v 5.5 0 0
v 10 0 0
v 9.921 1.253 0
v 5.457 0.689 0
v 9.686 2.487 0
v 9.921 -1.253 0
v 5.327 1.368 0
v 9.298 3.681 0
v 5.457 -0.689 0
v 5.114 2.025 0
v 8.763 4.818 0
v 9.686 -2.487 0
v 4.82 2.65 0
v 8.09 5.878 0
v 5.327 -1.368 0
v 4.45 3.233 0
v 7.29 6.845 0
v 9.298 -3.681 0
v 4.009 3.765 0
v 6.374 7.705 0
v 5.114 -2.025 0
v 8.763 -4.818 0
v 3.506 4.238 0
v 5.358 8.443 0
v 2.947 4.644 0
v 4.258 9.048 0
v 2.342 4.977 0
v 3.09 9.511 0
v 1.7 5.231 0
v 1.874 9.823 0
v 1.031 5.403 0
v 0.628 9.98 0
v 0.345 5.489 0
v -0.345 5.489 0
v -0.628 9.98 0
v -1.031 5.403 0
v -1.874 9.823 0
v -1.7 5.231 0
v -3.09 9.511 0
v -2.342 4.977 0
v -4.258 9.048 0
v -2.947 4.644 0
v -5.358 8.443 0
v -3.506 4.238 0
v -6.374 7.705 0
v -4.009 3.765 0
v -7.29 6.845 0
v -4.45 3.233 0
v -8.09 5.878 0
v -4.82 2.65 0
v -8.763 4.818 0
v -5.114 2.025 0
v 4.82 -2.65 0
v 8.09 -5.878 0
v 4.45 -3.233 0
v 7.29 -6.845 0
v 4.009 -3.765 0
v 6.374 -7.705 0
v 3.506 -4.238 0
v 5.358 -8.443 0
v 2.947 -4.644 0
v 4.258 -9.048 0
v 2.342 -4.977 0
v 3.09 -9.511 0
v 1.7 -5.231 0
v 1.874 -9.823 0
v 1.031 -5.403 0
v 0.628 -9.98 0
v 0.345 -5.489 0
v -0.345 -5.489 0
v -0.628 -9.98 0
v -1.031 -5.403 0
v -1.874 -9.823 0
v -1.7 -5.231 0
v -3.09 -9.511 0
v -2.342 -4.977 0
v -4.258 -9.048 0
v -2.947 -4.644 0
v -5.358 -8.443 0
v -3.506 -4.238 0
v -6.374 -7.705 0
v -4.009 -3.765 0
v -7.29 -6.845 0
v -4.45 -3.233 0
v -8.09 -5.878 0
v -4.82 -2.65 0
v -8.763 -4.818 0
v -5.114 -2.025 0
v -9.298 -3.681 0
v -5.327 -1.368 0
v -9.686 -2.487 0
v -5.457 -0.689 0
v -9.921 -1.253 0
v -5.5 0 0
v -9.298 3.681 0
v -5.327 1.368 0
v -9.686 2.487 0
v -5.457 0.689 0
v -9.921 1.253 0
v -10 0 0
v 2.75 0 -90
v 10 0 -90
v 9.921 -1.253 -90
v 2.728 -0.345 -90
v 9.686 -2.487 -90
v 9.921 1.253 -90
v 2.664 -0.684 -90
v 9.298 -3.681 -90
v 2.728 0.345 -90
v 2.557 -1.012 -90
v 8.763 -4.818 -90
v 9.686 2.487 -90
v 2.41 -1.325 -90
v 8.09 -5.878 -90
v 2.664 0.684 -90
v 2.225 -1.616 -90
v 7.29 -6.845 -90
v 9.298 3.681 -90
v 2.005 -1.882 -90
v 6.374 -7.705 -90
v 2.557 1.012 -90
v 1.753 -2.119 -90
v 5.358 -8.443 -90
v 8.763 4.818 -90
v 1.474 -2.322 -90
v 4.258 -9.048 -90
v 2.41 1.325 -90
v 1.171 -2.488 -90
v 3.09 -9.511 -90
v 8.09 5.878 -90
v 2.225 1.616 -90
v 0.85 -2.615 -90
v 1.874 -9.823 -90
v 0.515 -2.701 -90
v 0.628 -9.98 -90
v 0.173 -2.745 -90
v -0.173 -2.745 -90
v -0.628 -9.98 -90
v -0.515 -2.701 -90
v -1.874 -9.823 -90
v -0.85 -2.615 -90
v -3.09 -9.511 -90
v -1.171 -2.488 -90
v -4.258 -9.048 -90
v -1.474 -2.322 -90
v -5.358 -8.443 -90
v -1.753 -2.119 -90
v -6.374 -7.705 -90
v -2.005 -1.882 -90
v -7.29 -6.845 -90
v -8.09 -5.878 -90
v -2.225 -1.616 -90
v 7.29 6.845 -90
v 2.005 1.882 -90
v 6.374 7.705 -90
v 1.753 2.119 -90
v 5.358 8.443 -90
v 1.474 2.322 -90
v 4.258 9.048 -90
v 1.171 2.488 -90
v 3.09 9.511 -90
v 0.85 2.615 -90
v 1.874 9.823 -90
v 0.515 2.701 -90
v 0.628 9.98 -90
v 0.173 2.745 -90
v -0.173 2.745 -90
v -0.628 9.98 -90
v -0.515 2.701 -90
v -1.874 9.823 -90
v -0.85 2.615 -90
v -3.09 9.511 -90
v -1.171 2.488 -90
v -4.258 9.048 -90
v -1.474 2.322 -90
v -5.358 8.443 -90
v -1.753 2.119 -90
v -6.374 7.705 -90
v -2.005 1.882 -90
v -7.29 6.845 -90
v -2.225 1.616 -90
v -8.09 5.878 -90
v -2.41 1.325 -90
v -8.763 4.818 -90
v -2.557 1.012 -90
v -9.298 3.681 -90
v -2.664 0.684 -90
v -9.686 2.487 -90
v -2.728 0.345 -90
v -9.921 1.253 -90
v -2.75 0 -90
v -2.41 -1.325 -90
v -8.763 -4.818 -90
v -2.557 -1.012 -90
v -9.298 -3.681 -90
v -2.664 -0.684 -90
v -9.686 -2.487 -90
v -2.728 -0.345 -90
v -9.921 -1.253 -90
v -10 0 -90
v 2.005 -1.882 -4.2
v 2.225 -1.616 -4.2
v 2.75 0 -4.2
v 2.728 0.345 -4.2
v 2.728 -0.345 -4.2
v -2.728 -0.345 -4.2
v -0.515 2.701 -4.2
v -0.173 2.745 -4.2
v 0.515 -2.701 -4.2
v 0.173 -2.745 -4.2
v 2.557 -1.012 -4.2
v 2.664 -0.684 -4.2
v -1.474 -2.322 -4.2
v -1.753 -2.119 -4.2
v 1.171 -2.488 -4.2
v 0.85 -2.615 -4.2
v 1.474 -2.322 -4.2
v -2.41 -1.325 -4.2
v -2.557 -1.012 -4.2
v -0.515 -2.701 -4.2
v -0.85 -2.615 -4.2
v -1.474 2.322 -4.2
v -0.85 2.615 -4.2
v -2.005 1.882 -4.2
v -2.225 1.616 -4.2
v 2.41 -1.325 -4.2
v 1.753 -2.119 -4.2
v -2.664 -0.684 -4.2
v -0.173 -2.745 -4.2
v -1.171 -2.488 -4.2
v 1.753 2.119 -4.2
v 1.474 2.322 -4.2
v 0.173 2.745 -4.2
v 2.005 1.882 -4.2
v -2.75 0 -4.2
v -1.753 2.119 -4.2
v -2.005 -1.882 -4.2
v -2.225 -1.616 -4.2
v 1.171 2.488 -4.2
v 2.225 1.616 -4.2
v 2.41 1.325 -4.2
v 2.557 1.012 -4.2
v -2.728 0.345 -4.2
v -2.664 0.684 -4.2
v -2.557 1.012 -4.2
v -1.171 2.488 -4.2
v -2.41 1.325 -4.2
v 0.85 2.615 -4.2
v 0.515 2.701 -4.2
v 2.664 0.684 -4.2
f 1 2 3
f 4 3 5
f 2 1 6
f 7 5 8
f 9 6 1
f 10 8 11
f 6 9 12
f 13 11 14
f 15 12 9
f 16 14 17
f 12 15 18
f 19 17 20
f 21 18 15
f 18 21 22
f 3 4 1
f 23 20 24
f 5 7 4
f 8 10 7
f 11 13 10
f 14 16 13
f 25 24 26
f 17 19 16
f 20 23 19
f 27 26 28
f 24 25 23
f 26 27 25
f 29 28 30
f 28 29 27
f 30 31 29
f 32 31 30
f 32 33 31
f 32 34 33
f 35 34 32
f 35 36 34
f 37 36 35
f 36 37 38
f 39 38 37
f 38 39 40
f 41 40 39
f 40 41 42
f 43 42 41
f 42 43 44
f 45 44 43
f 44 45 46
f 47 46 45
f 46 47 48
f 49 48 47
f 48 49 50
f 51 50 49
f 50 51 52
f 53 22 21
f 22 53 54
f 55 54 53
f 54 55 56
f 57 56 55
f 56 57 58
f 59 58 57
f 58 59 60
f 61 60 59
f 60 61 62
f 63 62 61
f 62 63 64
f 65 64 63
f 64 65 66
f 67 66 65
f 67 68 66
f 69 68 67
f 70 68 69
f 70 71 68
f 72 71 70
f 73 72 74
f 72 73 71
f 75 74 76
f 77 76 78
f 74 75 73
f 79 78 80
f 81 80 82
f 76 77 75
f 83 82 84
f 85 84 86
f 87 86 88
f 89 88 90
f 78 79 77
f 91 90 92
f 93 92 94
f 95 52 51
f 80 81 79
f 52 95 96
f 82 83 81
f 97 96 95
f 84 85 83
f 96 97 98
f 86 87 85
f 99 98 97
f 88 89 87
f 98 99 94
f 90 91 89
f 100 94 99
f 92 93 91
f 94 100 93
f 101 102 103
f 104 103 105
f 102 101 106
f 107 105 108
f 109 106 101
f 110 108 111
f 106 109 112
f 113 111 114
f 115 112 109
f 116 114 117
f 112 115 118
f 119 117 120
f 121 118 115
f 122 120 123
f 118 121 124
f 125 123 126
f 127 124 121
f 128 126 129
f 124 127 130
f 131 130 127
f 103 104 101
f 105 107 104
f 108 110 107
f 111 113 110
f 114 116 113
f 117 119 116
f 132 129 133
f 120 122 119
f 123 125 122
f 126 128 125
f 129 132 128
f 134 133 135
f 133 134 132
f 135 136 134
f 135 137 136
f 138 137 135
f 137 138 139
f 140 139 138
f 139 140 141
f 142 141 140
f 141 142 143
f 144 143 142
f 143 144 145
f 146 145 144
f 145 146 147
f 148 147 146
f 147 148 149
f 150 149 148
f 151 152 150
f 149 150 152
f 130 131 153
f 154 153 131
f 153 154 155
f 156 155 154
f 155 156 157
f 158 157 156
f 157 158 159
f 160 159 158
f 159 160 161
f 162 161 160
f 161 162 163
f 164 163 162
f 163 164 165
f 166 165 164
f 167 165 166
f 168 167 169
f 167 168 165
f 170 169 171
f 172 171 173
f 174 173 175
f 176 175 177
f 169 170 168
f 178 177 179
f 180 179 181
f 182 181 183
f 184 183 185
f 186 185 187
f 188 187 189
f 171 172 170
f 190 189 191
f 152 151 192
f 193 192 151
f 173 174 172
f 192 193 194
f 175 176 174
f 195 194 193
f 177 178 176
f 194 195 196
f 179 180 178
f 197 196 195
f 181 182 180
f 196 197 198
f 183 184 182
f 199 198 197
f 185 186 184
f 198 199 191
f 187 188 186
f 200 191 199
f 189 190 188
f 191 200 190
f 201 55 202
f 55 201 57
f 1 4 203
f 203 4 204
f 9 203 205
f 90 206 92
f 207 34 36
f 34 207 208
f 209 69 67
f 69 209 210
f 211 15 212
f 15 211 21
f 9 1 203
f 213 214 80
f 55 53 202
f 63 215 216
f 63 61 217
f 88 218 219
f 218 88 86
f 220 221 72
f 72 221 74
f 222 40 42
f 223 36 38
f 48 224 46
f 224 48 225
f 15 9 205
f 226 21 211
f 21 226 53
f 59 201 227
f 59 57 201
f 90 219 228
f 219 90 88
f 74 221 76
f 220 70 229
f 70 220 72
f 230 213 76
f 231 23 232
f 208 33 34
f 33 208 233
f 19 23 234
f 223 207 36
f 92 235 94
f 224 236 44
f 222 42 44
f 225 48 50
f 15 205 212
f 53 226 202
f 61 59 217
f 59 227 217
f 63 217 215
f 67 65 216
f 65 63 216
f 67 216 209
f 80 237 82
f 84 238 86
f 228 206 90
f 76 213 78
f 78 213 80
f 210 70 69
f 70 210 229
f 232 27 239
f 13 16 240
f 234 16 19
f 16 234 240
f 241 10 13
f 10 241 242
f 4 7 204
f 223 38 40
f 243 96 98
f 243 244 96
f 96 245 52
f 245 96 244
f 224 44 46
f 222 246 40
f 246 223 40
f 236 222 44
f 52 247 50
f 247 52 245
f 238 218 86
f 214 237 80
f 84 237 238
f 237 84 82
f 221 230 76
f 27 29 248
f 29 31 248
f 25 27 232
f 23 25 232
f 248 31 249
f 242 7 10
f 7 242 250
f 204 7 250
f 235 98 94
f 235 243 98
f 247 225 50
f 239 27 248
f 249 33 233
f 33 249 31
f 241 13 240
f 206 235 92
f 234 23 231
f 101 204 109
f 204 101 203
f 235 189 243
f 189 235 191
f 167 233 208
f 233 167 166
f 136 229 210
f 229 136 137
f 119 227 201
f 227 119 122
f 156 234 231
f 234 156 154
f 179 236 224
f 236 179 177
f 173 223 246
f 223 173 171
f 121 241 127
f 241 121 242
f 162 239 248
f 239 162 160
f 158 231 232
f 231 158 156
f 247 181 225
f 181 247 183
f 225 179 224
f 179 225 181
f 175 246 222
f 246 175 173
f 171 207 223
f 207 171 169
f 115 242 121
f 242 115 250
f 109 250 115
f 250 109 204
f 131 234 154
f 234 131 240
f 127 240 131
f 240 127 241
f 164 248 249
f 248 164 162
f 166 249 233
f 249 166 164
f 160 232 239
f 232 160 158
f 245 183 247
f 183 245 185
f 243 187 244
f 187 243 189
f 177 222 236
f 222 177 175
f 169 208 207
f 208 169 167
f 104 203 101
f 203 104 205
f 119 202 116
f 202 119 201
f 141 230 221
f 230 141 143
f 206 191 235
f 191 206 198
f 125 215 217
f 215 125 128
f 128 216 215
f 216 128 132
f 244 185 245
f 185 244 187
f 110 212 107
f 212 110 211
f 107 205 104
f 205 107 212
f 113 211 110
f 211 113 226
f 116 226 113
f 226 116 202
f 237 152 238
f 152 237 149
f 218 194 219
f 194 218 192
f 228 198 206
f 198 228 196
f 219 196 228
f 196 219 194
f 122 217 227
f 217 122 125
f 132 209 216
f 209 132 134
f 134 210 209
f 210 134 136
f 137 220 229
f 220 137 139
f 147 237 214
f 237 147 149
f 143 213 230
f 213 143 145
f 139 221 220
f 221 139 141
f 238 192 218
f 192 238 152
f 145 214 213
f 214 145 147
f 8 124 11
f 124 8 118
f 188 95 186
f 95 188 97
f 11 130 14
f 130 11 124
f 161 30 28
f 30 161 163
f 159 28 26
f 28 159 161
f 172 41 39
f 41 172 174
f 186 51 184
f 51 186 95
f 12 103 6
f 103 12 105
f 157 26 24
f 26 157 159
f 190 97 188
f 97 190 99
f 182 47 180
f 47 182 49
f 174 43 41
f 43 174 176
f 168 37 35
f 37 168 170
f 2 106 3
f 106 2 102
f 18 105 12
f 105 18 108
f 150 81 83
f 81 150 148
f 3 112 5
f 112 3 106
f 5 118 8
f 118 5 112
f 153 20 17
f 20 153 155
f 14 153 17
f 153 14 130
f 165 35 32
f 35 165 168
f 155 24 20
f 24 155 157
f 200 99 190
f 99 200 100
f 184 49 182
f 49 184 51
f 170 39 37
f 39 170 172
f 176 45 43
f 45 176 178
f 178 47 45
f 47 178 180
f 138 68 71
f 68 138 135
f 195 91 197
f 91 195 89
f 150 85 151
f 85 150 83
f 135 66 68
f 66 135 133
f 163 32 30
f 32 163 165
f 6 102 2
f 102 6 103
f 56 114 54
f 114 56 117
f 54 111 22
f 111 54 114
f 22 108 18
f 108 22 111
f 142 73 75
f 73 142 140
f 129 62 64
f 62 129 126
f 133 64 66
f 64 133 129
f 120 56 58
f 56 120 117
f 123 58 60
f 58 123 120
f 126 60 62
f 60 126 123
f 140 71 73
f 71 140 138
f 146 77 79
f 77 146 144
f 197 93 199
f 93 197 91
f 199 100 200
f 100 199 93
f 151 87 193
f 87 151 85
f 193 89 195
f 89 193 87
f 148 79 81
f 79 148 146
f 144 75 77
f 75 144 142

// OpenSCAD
$fn = 50;


difference() {
	union() {
		translate(v = [0, 0, -90.0000000000]) {
			cylinder(h = 90, r = 10.0000000000);
		}
	}
	union() {
		translate(v = [0, 0, 0]) {
			rotate(a = [0, 0, 0]) {
				difference() {
					union() {
						#translate(v = [0, 0, -90.0000000000]) {
							cylinder(h = 90, r = 2.2500000000);
						}
						#translate(v = [0, 0, -4.2000000000]) {
							cylinder(h = 4.2000000000, r = 10.0000000000, r1 = 2.7500000000, r2 = 5.5000000000);
						}
						#translate(v = [0, 0, -90.0000000000]) {
							cylinder(h = 90, r = 2.7500000000);
						}
						#translate(v = [0, 0, -90.0000000000]) {
							cylinder(h = 90, r = 2.2500000000);
						}
					}
					union();
				}
			}
		}
	}
}
